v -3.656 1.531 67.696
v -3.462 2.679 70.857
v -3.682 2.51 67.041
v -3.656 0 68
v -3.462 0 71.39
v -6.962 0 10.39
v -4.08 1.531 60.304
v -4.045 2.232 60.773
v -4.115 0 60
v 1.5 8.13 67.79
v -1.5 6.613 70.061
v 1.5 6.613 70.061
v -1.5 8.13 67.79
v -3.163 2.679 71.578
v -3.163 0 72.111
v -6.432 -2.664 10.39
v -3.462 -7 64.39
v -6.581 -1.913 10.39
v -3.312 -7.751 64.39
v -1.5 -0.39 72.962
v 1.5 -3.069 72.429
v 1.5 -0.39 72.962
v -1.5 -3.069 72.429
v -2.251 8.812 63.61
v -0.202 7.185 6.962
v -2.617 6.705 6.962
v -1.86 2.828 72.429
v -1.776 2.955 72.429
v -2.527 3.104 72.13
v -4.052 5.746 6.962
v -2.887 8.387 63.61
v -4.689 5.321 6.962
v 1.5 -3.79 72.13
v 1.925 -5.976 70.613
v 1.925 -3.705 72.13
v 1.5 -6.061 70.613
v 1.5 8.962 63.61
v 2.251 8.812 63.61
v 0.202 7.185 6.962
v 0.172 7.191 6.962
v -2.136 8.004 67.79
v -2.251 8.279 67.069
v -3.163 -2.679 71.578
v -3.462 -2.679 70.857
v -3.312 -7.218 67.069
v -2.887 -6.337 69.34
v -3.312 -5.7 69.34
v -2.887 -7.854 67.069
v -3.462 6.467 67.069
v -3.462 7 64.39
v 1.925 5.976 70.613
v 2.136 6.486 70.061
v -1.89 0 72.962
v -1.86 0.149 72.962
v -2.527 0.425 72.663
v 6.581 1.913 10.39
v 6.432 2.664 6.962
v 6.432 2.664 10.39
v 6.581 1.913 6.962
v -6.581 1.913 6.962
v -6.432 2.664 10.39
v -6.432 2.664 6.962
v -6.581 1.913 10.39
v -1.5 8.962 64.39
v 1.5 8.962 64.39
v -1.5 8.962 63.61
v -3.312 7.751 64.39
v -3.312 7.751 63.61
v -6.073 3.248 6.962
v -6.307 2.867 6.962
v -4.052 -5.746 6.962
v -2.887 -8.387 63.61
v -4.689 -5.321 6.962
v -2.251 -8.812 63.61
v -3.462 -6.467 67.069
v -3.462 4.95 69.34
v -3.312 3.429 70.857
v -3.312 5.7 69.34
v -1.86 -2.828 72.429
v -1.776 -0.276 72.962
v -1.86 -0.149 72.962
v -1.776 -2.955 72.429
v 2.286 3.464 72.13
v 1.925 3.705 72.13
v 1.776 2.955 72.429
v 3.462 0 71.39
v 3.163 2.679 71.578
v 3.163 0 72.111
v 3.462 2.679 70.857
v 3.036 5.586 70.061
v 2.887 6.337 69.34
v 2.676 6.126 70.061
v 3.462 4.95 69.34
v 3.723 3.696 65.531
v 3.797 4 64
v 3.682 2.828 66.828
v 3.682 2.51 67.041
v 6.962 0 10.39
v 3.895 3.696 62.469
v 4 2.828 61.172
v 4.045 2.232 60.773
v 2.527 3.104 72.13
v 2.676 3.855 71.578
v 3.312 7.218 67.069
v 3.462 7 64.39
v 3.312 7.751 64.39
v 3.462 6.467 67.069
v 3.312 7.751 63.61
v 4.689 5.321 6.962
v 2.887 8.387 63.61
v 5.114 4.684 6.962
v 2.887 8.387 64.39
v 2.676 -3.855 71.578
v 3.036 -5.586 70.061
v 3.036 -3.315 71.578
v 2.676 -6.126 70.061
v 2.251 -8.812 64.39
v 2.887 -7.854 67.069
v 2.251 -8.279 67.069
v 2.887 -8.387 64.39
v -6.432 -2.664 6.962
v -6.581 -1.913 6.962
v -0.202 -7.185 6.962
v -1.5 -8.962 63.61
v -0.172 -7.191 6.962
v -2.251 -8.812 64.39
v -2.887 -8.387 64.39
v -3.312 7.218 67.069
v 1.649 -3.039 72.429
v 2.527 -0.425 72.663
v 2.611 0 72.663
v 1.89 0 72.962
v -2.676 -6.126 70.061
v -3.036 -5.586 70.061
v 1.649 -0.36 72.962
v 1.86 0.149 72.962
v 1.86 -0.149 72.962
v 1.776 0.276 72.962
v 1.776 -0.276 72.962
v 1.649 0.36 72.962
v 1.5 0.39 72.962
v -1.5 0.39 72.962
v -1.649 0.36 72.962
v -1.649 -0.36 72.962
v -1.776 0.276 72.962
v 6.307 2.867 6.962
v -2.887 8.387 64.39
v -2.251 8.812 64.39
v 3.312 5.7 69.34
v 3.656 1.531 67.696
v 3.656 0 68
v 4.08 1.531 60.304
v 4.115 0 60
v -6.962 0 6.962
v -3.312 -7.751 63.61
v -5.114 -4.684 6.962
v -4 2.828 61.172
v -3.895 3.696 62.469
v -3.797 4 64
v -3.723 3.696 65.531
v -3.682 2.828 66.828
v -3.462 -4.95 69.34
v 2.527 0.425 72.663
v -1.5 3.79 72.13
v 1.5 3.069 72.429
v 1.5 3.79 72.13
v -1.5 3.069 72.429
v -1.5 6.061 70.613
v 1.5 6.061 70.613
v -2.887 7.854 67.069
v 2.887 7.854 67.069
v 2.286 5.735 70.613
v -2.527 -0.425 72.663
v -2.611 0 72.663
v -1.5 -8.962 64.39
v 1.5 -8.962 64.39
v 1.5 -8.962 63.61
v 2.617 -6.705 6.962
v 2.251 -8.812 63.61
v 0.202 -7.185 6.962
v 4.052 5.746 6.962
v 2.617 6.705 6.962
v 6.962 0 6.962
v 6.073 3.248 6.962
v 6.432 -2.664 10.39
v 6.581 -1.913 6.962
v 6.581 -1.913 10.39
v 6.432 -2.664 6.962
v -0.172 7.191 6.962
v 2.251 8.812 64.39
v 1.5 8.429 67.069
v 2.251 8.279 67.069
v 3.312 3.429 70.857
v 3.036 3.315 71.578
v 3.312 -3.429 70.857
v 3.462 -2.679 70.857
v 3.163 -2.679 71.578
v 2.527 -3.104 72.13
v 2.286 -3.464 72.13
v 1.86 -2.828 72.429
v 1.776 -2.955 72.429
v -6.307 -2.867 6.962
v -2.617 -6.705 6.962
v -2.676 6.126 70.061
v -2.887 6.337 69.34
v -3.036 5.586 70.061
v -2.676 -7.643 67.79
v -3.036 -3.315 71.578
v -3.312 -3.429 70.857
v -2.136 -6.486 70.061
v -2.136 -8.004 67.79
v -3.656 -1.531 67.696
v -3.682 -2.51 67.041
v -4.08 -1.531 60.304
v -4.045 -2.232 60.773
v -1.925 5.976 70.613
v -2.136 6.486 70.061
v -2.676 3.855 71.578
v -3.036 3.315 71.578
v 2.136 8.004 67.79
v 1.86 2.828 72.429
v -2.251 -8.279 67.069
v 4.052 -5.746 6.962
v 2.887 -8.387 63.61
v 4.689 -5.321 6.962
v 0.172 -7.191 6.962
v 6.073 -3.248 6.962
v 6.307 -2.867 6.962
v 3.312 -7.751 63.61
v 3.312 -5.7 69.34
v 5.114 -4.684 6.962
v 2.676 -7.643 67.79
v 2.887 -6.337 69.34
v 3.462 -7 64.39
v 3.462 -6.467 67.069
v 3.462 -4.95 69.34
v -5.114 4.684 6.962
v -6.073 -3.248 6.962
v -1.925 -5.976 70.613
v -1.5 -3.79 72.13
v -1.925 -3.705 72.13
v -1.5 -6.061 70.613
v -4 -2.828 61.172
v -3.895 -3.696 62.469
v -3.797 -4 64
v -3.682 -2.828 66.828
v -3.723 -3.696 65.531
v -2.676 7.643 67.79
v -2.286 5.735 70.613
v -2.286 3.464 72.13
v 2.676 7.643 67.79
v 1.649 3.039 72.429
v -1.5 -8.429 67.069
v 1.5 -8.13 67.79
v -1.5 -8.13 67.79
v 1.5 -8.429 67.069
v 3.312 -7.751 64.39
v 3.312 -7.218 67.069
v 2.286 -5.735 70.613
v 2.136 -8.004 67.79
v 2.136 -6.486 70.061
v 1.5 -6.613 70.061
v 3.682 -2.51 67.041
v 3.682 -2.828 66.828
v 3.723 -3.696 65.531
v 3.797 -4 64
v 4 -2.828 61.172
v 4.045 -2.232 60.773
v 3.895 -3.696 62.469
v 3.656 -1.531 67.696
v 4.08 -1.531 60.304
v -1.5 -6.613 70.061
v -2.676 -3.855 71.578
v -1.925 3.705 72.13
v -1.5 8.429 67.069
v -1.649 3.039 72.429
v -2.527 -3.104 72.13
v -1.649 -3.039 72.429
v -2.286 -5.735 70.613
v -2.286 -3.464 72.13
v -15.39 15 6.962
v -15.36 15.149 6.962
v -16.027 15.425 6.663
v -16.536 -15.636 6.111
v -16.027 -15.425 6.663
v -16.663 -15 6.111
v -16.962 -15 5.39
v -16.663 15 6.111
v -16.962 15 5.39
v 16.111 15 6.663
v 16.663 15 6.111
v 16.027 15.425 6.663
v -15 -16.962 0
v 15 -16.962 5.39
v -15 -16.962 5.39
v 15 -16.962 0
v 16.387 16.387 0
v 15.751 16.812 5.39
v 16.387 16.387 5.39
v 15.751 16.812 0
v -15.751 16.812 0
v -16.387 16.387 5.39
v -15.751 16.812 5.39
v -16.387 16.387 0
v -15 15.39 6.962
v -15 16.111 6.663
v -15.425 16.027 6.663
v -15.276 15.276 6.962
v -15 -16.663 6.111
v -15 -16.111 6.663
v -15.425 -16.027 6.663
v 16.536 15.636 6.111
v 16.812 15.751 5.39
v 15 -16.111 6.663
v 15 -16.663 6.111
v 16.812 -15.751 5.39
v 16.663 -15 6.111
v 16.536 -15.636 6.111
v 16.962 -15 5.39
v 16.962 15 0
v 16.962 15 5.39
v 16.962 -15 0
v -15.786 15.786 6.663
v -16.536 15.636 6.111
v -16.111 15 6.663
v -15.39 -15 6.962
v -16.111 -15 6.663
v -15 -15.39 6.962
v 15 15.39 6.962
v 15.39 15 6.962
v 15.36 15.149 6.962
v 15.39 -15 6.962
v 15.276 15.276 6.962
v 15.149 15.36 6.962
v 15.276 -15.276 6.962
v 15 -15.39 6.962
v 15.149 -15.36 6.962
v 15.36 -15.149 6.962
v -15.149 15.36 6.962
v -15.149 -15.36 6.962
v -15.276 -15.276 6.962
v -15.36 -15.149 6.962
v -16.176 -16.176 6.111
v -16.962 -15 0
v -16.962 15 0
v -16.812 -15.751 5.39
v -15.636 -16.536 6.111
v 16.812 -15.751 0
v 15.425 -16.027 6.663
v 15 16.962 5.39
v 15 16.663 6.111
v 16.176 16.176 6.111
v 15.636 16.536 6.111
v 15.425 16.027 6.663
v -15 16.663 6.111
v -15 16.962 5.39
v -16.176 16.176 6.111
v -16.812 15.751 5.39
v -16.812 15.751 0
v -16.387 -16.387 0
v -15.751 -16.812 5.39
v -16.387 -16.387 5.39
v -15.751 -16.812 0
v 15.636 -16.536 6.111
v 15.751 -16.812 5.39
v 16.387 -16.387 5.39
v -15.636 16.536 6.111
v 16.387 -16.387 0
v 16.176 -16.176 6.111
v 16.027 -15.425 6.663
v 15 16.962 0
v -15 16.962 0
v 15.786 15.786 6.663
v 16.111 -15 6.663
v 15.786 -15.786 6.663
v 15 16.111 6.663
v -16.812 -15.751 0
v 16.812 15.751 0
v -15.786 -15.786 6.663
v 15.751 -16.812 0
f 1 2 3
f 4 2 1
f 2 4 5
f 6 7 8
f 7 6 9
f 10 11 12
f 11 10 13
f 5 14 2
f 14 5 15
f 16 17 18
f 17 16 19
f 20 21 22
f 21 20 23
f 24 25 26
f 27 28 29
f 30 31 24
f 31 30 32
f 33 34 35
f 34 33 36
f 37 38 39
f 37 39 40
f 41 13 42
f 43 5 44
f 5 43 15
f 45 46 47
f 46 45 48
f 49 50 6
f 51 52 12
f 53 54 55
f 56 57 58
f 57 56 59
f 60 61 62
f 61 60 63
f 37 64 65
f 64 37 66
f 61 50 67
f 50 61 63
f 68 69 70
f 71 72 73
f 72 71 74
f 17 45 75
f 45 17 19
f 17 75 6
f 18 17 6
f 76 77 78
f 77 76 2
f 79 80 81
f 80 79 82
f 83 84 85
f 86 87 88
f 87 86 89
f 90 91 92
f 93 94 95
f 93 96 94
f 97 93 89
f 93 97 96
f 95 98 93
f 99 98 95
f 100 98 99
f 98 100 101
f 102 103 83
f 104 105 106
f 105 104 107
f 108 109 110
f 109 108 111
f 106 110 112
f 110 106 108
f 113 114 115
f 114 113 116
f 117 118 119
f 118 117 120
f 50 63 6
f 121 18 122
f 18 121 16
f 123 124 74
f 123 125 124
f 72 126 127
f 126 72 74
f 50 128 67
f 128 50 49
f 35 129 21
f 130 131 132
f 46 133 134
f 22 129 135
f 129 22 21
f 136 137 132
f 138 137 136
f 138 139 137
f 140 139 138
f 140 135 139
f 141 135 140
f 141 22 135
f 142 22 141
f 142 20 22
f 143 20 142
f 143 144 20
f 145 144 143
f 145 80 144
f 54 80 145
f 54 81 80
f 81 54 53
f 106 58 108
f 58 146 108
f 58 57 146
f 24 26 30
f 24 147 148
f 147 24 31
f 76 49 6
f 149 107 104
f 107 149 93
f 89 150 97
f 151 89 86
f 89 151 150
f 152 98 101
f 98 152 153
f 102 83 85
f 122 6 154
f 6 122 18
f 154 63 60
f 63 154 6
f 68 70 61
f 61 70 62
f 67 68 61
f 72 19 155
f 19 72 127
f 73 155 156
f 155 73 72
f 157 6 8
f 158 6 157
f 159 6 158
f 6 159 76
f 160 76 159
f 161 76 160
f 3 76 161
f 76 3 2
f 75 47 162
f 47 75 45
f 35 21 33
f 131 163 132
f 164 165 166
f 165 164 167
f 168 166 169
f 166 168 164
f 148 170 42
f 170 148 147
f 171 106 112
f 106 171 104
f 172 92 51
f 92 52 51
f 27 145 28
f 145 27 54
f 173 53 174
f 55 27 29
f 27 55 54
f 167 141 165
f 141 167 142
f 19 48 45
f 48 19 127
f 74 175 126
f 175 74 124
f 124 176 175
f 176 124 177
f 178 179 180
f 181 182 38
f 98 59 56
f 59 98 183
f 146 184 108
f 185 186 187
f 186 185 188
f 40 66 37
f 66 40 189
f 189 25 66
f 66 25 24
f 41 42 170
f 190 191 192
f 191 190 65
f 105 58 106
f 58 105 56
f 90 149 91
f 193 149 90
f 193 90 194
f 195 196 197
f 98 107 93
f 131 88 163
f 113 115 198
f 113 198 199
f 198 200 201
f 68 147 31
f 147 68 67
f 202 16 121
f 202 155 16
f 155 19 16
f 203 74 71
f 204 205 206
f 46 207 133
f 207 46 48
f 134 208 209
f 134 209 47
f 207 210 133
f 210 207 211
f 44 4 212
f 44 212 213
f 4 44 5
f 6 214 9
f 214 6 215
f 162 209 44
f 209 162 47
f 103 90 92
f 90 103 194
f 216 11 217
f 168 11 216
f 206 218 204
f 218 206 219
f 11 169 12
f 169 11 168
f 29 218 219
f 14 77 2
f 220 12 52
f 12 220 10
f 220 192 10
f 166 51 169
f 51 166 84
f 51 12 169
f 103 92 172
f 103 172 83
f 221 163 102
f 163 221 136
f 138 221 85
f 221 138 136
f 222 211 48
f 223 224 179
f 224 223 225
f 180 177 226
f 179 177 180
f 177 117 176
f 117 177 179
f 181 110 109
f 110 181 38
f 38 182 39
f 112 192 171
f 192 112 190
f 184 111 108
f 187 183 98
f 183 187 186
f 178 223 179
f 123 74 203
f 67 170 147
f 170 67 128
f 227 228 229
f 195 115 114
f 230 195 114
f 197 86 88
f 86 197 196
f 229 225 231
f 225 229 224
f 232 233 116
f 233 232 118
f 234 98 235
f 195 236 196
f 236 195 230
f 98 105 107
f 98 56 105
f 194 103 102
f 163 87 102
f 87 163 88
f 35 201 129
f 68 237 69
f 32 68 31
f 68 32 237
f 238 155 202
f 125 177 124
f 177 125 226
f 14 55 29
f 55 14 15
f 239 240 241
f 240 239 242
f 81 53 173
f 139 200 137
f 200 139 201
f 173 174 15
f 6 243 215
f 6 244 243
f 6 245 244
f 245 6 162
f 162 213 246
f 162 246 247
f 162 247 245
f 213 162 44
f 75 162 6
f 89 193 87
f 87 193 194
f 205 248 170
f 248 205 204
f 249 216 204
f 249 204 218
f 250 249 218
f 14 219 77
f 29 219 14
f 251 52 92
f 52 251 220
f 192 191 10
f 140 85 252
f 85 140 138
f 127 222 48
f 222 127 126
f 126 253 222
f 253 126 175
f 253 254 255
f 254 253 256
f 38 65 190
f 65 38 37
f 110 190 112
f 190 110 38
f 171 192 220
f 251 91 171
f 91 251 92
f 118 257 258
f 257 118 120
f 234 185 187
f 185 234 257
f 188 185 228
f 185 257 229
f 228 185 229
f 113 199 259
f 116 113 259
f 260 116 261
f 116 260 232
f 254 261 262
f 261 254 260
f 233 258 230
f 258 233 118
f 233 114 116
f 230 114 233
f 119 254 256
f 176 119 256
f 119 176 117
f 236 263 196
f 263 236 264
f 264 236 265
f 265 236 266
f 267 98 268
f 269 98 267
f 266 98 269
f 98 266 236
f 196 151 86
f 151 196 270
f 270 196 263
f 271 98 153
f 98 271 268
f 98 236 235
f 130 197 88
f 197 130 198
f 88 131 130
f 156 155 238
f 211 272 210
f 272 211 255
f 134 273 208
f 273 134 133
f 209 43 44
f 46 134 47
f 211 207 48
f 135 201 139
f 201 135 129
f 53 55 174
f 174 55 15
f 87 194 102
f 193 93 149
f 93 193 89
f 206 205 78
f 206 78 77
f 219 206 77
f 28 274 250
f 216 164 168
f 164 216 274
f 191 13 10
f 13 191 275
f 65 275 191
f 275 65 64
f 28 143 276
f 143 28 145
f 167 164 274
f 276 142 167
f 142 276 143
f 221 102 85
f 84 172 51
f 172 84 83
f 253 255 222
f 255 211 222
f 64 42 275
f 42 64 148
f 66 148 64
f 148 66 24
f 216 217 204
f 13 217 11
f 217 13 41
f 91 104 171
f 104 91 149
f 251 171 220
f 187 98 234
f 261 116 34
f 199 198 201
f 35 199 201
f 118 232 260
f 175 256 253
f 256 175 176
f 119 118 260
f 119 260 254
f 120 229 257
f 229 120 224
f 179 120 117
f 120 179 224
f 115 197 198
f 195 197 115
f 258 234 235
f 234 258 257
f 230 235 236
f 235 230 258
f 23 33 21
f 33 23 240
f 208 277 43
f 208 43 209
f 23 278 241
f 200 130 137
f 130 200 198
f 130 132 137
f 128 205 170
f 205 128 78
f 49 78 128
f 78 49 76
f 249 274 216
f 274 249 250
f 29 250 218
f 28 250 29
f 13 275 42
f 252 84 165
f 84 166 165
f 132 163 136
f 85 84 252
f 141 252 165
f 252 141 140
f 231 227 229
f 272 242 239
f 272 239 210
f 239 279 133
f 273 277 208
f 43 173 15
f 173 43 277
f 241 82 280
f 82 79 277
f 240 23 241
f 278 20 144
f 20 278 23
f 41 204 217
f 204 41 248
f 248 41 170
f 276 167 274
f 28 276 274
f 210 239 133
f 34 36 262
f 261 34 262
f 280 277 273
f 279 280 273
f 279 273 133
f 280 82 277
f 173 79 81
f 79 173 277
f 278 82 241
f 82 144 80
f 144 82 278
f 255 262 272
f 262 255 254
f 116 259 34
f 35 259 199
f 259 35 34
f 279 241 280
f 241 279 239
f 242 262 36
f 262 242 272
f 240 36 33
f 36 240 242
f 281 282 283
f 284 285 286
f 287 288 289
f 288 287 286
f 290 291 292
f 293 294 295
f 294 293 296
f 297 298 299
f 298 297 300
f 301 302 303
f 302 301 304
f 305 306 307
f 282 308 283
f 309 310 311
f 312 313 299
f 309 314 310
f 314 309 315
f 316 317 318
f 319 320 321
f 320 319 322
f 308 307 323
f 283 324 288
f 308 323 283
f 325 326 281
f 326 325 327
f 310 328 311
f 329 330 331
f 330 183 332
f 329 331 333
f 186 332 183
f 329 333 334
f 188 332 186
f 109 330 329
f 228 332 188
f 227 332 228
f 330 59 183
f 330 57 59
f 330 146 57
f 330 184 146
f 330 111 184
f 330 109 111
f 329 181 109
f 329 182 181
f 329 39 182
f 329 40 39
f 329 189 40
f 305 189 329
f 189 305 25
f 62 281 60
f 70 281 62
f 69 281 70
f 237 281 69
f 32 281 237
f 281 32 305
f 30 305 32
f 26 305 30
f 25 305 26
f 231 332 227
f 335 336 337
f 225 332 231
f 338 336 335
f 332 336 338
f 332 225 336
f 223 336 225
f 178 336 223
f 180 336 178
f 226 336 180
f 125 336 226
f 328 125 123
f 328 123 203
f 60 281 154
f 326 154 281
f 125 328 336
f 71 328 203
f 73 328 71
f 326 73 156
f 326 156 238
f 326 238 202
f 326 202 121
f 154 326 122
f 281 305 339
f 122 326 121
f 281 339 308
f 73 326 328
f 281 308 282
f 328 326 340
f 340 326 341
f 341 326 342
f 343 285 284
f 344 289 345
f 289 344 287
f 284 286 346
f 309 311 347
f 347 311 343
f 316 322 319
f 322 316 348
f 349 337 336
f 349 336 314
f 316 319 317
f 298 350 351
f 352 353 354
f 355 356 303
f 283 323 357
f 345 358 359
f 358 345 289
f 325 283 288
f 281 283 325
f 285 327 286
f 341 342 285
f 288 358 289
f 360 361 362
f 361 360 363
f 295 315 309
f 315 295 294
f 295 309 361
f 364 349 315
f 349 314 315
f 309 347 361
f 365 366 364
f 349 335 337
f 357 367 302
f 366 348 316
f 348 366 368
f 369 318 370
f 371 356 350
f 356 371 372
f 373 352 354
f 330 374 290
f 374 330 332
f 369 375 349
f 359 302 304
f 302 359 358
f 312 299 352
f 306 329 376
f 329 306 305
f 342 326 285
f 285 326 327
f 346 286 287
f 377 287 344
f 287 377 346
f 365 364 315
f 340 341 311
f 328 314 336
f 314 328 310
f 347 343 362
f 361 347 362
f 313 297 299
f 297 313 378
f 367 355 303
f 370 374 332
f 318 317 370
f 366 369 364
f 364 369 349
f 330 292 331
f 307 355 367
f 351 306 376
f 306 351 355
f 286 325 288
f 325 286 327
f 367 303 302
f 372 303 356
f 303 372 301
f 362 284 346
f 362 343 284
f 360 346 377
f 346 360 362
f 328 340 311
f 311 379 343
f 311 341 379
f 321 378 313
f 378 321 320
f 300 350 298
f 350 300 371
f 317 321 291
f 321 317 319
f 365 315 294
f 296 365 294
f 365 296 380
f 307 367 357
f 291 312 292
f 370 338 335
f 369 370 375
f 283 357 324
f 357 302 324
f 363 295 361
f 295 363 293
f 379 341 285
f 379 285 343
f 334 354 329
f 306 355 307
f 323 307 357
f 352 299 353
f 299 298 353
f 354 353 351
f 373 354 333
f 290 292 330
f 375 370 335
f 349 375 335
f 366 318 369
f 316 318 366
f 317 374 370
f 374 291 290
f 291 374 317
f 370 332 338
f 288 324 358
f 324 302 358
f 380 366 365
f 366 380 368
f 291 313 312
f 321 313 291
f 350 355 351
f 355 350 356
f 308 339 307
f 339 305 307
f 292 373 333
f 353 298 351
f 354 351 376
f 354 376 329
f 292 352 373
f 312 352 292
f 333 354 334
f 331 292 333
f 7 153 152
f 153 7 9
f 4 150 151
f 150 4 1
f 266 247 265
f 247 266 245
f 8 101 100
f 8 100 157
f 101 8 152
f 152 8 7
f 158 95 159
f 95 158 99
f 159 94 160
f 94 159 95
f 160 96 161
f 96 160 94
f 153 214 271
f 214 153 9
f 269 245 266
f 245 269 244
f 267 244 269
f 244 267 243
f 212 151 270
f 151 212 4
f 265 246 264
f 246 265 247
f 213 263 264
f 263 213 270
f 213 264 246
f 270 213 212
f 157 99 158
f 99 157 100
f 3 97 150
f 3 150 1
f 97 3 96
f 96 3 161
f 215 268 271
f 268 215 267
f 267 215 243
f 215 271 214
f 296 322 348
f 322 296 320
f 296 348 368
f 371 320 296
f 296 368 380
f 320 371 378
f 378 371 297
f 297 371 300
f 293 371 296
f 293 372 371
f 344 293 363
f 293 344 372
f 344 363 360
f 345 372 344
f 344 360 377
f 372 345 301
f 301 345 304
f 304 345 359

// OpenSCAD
difference(){
minkowski(){
    union(){
translate([0,0,2.5])cube([30,30,5],center=true);
hull(){
cylinder(r1=5,r2=5,h=10);
translate([0,0,64])rotate([0,90,0])cylinder(r=7,h=3,center=true,$fn=16);
}}
sphere(r=2,$fn=16);
}

translate([0,0,64])rotate([0,90,0])cylinder(r=4,h=20,center=true,$fn=16);

translate([0,0,-2.5])cube([50,50,5],center=true);
}
